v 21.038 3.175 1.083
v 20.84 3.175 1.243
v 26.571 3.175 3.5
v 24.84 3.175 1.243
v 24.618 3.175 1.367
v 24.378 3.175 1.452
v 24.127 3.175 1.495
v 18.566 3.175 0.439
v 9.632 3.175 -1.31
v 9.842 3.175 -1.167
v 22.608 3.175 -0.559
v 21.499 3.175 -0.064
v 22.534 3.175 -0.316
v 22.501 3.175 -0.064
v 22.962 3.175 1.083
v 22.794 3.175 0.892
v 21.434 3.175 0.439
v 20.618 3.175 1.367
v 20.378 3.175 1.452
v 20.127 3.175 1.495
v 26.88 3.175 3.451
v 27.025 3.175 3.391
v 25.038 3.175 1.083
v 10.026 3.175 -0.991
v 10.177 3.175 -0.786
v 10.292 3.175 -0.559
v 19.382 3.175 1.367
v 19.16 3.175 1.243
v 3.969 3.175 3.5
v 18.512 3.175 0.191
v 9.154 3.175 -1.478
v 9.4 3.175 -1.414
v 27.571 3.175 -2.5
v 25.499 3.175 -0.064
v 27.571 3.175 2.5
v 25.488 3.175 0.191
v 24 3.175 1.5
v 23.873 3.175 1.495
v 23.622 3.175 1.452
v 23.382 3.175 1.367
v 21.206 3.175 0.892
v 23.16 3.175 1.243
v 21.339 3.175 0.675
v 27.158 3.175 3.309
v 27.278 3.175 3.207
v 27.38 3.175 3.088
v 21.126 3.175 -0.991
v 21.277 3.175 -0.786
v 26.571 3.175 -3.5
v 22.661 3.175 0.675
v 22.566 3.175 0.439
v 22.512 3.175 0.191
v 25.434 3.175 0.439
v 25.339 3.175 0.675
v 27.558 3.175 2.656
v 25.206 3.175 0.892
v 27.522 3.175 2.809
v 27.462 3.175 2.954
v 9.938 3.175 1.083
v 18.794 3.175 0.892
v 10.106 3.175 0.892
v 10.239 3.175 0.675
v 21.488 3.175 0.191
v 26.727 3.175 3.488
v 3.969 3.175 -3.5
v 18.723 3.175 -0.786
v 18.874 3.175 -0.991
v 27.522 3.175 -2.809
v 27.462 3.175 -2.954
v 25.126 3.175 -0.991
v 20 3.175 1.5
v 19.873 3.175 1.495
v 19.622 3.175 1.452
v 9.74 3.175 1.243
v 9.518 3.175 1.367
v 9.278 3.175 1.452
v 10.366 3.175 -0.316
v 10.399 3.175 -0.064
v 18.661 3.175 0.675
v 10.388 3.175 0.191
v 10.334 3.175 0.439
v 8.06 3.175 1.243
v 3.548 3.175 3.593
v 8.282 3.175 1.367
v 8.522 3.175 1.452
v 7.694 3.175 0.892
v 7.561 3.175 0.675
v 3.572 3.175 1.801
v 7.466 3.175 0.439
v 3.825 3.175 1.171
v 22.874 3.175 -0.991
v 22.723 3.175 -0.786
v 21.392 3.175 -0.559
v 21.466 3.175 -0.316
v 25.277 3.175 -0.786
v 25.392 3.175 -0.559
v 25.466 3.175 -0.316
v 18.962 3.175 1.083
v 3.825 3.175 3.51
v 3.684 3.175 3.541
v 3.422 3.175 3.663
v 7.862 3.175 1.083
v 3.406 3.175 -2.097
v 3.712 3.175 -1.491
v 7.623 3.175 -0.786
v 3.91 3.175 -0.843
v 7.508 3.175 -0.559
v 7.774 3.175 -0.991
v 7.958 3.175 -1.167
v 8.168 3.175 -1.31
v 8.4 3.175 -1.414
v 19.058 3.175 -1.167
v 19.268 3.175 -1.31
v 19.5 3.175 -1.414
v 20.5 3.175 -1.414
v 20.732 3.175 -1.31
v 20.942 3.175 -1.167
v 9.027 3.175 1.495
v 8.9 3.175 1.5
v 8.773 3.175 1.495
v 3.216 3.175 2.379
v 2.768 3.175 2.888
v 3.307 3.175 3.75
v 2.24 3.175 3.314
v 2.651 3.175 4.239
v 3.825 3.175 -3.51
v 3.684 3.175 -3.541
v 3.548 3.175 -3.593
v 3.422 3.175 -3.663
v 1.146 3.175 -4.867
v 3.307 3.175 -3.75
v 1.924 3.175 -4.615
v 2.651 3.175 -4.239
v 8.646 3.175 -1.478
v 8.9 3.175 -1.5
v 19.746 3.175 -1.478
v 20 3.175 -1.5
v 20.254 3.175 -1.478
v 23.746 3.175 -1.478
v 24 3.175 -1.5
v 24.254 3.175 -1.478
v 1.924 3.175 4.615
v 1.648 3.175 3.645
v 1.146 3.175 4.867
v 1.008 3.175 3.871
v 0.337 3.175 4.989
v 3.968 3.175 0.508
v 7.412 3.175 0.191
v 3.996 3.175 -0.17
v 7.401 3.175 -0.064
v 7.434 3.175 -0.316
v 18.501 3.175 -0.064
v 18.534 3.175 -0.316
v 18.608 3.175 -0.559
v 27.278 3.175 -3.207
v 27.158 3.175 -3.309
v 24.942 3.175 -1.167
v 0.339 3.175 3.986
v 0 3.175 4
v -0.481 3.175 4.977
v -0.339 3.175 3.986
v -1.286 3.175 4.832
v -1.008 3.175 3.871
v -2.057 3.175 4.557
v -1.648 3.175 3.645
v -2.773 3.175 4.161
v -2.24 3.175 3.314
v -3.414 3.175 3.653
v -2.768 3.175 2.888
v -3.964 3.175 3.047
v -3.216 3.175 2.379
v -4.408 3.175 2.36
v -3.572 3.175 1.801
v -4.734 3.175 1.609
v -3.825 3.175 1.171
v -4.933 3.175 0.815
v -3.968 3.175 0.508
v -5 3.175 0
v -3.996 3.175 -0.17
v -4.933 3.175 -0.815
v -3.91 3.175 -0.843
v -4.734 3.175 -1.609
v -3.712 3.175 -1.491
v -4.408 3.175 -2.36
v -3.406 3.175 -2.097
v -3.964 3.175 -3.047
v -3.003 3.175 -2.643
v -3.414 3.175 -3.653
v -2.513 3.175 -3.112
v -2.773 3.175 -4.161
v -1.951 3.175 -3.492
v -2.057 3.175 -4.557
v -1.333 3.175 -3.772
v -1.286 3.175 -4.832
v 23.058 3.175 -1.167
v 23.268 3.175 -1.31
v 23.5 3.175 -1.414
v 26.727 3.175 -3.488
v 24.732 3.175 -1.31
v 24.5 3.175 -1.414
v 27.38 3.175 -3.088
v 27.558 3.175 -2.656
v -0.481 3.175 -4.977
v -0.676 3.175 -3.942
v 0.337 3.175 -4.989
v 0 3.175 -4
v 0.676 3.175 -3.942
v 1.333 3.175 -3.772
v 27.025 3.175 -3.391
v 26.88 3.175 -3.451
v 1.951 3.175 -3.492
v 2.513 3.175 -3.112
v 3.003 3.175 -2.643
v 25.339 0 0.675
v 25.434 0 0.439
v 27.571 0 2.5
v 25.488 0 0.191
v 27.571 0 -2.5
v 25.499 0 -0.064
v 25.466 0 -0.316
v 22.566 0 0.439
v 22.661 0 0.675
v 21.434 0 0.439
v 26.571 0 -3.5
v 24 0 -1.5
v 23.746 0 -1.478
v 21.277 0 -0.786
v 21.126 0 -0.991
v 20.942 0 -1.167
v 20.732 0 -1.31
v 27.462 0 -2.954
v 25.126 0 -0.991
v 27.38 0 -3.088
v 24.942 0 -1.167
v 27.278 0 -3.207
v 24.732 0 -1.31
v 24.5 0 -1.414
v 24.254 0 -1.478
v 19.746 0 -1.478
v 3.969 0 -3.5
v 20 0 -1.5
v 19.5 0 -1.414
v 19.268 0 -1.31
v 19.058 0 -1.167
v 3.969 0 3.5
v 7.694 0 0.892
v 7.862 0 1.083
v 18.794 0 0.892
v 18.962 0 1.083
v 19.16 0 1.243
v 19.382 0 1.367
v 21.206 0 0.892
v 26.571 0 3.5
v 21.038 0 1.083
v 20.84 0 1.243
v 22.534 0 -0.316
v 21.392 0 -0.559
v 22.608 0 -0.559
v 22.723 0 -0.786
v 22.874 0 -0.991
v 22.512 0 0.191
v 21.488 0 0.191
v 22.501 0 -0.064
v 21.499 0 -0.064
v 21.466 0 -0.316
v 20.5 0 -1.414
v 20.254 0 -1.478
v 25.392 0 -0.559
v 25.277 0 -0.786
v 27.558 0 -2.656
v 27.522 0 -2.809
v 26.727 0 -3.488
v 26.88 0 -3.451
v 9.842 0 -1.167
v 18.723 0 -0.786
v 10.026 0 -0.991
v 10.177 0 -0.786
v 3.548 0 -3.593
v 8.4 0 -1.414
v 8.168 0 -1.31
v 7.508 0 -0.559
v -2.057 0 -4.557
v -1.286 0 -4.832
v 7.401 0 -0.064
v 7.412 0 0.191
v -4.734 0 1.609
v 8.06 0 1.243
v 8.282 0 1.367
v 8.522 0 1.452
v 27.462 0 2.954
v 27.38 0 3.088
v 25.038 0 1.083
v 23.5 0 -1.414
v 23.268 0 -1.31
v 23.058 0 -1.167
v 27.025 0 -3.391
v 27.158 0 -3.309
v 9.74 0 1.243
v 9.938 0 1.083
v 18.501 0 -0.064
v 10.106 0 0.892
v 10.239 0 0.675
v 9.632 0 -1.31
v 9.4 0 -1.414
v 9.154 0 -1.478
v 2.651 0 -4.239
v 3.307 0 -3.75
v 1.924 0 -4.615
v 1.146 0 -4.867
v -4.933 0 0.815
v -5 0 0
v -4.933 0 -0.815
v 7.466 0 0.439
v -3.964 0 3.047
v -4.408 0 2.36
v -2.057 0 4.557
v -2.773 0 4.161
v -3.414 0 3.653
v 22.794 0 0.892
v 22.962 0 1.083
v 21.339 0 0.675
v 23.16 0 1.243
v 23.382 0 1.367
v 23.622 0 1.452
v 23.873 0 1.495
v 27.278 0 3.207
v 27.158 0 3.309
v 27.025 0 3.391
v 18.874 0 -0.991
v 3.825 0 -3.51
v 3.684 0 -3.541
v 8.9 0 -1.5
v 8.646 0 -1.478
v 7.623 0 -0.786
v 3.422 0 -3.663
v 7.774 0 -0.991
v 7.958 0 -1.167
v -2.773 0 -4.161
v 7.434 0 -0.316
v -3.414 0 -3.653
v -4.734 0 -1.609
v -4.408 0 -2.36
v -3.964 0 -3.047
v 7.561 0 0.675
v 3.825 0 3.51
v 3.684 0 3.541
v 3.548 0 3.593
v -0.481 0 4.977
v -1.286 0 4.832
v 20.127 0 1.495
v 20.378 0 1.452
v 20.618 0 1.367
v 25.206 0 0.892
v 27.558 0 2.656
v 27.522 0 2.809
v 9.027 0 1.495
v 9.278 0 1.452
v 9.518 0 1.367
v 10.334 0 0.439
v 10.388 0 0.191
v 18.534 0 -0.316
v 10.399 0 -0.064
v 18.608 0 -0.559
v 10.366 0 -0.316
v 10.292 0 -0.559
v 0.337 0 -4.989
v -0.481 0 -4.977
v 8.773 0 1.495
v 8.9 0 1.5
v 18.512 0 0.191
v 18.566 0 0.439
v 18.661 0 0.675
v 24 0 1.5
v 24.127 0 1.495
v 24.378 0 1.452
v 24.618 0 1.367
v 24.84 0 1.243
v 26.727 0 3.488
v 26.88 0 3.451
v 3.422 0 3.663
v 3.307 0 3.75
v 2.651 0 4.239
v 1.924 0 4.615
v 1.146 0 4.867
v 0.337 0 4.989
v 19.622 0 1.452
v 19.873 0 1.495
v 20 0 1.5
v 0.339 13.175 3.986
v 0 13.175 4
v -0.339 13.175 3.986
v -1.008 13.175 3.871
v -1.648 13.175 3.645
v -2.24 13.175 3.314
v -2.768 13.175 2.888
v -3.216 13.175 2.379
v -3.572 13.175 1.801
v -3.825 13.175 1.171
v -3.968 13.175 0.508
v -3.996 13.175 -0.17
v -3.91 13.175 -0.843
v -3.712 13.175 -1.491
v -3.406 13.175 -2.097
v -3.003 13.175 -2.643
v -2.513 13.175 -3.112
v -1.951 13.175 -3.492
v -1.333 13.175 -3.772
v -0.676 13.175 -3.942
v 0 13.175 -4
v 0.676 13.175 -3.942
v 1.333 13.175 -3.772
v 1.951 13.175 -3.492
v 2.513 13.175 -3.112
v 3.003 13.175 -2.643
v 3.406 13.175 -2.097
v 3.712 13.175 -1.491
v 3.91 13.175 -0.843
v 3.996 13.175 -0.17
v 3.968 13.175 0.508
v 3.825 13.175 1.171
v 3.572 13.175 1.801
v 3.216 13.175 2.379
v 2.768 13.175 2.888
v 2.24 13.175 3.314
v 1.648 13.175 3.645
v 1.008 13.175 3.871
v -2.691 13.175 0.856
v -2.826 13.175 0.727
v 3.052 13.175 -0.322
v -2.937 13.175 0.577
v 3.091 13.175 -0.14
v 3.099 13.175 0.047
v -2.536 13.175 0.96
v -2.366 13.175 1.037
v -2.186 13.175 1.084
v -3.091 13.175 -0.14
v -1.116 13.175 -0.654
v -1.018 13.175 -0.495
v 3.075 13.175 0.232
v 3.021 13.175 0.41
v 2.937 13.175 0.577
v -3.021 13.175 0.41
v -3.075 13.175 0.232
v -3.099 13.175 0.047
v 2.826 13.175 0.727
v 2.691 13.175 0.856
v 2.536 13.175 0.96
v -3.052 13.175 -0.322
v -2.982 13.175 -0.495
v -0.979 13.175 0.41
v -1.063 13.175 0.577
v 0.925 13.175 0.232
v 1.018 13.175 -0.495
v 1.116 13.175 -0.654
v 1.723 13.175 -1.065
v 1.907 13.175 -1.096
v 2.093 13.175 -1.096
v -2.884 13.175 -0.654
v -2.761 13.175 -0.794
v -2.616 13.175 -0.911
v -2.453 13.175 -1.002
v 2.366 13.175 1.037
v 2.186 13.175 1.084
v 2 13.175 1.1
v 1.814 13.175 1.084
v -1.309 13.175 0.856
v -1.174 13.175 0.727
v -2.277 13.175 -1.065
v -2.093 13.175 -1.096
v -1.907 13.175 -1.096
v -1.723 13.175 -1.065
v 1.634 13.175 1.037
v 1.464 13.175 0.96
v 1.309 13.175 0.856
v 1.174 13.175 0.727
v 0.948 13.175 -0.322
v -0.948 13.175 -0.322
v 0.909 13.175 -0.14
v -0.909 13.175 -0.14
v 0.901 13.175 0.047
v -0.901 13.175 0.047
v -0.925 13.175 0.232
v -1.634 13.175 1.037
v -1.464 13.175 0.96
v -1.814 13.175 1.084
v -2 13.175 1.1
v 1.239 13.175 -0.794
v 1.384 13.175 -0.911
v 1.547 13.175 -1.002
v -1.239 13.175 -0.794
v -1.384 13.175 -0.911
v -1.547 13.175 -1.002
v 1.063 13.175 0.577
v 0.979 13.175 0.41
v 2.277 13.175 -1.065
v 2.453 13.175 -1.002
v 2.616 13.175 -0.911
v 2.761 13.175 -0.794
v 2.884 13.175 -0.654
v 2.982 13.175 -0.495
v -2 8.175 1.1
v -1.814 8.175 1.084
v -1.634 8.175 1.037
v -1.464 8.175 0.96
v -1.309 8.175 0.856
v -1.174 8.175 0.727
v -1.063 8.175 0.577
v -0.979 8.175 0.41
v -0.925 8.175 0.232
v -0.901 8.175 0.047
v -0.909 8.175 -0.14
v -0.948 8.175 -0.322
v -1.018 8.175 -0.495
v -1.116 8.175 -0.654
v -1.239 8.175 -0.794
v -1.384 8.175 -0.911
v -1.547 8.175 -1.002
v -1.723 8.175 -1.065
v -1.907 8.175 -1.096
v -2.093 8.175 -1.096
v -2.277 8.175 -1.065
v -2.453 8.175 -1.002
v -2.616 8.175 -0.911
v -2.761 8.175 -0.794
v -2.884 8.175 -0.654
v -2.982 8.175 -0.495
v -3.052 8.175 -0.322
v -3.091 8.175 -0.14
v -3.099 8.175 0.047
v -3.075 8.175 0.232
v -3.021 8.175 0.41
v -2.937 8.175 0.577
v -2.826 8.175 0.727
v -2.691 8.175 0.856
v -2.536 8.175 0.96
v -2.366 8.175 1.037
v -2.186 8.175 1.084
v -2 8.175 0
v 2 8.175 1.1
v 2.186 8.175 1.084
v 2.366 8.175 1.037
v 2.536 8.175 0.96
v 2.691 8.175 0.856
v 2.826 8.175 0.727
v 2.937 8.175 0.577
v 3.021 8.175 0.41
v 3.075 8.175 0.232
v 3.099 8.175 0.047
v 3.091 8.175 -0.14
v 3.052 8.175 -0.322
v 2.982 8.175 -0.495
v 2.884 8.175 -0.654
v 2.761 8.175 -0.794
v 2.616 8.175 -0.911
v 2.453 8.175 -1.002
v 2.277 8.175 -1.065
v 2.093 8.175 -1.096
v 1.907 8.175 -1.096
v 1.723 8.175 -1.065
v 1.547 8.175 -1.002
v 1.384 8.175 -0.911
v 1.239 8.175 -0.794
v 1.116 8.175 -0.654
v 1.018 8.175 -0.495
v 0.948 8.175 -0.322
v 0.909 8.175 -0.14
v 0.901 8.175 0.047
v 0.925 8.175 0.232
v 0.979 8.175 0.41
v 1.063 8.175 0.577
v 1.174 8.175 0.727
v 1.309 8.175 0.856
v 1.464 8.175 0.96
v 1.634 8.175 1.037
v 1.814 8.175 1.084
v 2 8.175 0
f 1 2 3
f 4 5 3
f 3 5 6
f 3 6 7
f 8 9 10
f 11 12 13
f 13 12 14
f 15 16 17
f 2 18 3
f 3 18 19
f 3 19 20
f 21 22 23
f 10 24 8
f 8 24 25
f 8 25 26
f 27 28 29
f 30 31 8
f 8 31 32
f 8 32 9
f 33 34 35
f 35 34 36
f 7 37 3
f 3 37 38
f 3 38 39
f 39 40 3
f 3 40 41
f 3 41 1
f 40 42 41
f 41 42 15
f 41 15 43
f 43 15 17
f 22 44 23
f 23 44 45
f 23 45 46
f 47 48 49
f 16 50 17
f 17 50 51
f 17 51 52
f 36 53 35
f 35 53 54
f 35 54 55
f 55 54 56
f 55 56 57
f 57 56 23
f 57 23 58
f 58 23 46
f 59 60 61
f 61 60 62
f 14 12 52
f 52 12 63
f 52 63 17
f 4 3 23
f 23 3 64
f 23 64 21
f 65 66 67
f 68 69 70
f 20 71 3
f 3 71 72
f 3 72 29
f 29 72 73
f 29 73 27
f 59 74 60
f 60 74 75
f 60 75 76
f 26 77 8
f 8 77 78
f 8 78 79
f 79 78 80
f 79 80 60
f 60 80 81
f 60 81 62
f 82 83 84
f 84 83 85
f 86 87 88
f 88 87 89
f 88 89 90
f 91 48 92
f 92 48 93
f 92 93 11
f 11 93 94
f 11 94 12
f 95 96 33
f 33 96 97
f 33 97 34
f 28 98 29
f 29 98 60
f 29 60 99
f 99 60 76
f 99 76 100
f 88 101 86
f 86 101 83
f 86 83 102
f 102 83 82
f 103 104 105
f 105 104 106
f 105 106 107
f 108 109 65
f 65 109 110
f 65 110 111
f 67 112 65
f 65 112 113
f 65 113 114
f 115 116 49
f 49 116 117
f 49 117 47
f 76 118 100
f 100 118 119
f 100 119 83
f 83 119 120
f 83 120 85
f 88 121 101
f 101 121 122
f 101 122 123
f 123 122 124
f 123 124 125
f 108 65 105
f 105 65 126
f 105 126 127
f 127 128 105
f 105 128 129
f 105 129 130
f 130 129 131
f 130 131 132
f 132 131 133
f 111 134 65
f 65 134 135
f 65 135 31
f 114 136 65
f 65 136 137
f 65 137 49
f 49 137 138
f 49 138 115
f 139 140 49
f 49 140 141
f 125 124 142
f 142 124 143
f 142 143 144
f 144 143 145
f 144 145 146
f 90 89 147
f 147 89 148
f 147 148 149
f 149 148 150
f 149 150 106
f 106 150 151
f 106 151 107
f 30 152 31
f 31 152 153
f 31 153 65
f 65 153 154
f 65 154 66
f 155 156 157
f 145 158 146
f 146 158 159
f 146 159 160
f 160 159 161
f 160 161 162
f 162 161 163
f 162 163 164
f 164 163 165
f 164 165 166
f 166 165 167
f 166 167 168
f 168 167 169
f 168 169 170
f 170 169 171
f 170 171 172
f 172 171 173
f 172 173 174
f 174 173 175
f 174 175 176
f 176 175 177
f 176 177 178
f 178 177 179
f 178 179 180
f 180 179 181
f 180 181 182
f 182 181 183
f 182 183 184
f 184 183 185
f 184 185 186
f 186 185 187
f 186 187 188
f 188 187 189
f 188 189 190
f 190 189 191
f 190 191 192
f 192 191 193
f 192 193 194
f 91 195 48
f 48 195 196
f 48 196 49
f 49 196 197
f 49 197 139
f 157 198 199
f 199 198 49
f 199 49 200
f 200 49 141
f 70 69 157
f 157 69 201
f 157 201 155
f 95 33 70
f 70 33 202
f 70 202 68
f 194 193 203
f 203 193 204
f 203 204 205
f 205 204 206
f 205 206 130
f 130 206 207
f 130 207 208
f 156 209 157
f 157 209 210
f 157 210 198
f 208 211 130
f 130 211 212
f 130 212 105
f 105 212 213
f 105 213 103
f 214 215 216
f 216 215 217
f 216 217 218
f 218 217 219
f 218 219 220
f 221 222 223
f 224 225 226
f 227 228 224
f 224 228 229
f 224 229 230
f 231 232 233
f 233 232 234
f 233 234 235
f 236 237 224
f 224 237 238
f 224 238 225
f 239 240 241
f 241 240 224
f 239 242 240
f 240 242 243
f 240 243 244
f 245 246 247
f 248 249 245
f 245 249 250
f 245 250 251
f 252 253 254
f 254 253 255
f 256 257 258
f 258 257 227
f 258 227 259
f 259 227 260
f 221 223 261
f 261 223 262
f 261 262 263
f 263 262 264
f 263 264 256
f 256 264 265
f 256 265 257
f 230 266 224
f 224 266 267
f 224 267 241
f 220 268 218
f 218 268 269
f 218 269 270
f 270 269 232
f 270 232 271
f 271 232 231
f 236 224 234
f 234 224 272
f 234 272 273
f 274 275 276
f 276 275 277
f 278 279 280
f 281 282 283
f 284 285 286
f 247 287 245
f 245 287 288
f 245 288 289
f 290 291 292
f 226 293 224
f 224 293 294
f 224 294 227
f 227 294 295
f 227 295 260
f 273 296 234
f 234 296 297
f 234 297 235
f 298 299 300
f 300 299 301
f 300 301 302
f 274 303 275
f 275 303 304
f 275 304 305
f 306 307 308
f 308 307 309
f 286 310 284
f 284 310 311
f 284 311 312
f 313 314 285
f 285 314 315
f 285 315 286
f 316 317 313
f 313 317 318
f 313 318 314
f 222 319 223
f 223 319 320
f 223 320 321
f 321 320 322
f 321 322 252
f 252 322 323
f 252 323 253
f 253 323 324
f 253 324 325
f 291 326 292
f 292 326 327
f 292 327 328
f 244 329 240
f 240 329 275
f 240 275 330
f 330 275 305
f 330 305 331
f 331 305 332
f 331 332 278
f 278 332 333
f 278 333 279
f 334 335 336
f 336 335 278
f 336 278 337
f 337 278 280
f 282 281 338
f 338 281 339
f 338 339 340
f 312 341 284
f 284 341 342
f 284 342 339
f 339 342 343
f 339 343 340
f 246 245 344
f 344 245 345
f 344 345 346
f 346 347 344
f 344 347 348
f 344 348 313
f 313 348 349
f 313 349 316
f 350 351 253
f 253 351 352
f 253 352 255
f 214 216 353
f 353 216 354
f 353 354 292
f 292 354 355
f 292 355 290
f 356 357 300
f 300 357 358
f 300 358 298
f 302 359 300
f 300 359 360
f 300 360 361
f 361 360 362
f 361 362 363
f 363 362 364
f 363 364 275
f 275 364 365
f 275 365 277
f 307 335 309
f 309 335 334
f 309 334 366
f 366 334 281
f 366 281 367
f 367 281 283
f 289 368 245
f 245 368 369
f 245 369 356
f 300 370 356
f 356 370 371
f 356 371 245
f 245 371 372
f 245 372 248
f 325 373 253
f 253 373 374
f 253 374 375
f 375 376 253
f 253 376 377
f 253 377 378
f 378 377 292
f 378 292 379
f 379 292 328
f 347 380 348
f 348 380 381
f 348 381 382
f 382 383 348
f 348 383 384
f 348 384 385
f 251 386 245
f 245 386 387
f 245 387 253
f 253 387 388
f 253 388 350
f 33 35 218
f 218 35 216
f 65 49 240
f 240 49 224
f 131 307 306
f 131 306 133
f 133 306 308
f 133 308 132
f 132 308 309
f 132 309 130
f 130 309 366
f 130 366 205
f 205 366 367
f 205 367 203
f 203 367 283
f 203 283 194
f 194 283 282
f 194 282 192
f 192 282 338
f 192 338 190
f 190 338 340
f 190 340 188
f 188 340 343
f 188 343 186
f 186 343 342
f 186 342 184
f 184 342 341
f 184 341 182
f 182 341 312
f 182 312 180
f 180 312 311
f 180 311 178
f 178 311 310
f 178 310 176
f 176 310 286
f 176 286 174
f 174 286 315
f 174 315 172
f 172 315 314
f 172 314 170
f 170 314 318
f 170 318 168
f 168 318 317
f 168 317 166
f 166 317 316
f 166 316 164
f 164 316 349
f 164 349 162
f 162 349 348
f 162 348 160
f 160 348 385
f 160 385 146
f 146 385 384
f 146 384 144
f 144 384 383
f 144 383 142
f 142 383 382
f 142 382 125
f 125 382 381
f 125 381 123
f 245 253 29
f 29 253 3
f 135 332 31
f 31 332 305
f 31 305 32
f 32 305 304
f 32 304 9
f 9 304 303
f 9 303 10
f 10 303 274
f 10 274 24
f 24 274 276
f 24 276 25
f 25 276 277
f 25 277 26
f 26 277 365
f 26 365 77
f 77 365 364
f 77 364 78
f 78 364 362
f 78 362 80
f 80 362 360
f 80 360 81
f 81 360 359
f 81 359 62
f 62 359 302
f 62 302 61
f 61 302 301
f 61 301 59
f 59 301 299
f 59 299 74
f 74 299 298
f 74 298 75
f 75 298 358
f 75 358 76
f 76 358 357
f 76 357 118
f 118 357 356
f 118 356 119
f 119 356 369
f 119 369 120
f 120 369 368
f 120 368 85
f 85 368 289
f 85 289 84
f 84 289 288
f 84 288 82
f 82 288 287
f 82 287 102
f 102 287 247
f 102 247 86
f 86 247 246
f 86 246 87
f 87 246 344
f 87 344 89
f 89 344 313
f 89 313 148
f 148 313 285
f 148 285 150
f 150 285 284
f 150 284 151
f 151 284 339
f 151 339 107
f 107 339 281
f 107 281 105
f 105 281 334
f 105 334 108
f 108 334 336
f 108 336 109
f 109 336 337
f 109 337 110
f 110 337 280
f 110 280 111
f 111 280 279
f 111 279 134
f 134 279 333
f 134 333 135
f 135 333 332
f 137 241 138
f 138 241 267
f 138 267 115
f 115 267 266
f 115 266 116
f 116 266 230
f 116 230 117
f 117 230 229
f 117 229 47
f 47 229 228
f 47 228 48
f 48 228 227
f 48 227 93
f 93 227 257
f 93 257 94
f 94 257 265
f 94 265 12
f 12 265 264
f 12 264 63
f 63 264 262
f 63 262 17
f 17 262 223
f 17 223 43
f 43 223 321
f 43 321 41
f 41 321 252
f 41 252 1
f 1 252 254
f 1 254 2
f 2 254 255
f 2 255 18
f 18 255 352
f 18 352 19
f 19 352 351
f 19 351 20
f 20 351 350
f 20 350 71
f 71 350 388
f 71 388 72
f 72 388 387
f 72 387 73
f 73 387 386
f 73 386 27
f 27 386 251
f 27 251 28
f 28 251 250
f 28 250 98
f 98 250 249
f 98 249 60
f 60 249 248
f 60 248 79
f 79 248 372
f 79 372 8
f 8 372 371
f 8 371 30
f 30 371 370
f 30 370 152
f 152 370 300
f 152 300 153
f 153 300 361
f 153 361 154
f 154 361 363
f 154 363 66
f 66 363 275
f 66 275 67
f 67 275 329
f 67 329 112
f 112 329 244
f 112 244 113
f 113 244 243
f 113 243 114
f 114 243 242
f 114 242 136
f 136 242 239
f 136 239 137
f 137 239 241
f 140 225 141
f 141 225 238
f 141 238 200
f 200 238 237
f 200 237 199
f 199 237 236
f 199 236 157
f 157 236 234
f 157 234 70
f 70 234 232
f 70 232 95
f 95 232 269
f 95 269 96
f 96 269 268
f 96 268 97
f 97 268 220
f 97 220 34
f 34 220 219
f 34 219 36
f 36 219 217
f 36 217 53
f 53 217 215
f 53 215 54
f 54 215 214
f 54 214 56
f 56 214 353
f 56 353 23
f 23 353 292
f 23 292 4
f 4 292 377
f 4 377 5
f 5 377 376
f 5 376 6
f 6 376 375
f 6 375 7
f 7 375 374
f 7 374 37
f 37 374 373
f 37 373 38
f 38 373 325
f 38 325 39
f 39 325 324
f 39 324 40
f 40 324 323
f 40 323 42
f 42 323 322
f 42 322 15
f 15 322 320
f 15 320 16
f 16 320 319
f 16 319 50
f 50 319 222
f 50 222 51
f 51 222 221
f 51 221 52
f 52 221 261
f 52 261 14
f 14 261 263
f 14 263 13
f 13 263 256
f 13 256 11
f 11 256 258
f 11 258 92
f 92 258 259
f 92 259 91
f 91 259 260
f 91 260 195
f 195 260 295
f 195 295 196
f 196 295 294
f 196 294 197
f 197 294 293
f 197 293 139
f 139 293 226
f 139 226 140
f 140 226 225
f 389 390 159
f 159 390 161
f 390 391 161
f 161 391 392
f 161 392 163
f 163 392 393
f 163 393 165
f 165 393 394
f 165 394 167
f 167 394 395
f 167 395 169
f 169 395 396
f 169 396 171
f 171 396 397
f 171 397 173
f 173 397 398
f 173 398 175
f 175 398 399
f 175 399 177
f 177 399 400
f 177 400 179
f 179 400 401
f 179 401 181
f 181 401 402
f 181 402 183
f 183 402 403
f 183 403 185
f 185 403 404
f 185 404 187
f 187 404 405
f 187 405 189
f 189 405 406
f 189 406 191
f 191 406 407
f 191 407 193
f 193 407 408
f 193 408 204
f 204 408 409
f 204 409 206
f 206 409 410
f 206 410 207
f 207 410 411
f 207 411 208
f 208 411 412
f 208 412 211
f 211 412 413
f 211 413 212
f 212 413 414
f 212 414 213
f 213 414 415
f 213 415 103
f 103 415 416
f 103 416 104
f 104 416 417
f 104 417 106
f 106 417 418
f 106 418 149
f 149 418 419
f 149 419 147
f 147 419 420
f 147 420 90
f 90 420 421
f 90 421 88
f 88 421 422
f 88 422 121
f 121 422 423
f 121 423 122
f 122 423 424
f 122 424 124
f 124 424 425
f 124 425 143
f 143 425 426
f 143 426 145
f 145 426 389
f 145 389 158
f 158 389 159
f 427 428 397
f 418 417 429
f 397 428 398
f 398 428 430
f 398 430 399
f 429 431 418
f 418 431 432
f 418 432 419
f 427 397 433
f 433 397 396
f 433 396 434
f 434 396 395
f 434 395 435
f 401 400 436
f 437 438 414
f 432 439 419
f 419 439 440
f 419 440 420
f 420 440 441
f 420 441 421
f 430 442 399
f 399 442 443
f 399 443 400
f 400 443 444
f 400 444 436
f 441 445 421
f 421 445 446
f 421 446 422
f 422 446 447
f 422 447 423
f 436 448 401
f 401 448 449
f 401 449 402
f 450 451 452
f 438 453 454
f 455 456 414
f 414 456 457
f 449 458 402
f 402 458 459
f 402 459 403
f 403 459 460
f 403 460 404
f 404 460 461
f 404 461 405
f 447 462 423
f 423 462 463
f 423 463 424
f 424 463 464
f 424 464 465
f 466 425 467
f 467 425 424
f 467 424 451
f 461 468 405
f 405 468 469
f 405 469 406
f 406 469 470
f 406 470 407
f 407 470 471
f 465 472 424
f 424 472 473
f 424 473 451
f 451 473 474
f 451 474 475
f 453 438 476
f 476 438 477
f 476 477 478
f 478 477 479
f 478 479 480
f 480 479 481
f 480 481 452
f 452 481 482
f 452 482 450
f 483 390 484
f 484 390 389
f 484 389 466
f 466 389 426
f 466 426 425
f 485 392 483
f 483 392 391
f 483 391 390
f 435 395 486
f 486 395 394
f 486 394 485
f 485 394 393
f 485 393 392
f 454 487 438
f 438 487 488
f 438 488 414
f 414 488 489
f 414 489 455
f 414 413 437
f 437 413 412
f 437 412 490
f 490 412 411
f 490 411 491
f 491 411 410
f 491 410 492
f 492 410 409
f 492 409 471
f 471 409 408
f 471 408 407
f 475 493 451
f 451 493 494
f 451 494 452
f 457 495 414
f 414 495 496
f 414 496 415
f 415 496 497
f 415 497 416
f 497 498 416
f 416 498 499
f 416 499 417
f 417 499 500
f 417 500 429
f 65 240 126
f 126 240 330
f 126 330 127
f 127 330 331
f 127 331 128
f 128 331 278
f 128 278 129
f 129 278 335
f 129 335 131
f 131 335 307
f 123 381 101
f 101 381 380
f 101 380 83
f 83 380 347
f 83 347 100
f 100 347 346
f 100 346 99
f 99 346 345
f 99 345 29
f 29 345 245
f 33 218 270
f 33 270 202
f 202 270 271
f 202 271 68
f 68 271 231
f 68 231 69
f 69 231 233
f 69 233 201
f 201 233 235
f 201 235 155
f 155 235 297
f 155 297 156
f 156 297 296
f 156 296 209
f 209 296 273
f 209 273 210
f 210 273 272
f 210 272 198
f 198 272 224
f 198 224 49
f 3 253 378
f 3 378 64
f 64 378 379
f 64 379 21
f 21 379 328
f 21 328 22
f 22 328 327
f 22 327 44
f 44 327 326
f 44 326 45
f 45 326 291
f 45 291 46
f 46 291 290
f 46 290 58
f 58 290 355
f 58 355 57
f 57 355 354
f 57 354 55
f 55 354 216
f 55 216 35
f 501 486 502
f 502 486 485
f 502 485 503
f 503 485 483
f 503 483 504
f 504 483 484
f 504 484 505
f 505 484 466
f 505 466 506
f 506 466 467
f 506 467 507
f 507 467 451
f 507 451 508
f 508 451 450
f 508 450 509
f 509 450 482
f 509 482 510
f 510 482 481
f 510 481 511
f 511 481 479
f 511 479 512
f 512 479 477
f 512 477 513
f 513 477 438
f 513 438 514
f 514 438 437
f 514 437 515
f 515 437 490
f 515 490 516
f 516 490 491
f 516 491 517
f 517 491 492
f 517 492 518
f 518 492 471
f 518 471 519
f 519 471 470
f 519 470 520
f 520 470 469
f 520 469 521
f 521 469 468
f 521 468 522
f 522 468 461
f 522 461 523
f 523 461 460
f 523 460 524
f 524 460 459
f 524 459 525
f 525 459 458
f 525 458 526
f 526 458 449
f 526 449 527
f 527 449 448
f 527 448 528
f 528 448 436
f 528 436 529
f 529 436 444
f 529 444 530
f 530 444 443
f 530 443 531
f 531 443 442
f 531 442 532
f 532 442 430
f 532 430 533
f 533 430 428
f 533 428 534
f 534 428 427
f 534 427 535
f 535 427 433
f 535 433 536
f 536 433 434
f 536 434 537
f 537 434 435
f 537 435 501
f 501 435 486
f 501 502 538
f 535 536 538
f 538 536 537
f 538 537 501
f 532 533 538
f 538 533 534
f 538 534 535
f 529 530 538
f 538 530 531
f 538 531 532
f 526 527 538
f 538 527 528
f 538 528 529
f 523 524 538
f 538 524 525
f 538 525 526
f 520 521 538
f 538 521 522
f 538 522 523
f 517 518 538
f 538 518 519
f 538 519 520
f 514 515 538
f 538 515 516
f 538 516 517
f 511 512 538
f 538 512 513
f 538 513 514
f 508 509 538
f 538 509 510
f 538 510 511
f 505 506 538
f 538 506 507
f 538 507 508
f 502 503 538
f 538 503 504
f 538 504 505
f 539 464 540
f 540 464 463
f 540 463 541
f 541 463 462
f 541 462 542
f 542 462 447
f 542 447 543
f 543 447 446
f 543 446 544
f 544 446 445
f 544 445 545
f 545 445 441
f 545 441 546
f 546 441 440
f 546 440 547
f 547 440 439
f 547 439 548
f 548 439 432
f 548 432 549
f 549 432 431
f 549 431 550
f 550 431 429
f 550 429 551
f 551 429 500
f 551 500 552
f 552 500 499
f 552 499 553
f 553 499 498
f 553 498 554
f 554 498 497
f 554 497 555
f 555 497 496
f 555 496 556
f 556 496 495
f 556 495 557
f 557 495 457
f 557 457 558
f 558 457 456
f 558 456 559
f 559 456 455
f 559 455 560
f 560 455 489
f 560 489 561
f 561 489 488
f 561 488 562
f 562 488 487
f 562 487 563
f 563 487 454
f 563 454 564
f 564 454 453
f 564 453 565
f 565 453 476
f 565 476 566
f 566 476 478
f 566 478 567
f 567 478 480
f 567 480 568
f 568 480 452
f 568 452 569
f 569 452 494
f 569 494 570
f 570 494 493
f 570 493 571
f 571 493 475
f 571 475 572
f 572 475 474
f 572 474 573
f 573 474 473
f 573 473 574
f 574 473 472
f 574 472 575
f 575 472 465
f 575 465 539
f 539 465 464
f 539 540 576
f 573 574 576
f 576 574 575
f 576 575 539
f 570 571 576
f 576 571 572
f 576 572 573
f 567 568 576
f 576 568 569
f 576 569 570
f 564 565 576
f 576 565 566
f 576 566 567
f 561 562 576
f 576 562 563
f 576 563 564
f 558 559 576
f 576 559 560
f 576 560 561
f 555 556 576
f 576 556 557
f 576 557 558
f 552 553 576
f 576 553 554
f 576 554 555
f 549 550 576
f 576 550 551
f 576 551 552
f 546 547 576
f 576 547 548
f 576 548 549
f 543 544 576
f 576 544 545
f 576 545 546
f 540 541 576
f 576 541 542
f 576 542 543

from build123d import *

# Parameters (mm, degrees)
SKETCH1_R           = 1.5
BOSS_EXTRUDE1_DEPTH = 3.175
SKETCH2_R           = 4
BOSS_EXTRUDE2_DEPTH = 10
FILLET1_R           = 1
SKETCH3_R           = 1.1
CUT_EXTRUDE1_DEPTH  = 5


with BuildPart() as part:
    # Sketch1 → Boss-Extrude1 (new body)
    with BuildSketch(Plane(origin=(0, 0, 0), x_dir=(1, 0, 0), z_dir=(0, 1, 0))):
        with BuildLine():
            Line((3.570714214, 3.5), (27.570714214, 3.5))
            Line((27.570714214, 3.5), (27.570714214, -3.5))
            Line((27.570714214, -3.5), (3.570714214, -3.5))
            ThreePointArc((3.570714214, -3.5), (-5, 0), (3.570714214, 3.5))
        make_face()
        with Locations(Location((8.9, 0, 0), (0, 0, 270))):
            Circle(SKETCH1_R, mode=Mode.SUBTRACT)
        with Locations(Location((20, 0, 0), (0, 0, 270))):
            Circle(SKETCH1_R, mode=Mode.SUBTRACT)
        with Locations(Location((24, 0, 0), (0, 0, 270))):
            Circle(SKETCH1_R, mode=Mode.SUBTRACT)
    extrude(amount=BOSS_EXTRUDE1_DEPTH)

    # Sketch2 → Boss-Extrude2 (add)
    with BuildSketch(Plane(origin=(0, 3.175, 0), x_dir=(1, 0, 0), z_dir=(0, 1, 0))):
        with Locations(Location((0, 0, 0), (0, 0, 270))):
            Circle(SKETCH2_R)
    extrude(amount=BOSS_EXTRUDE2_DEPTH)

    # Fillet1
    fillet1_edges = [part.edges().sort_by_distance(p)[0] for p in [
        (27.570714214, 1.5875, 3.5),
        (3.570714214, 1.5875, 3.5),
        (3.570714214, 1.5875, -3.5),
        (27.570714214, 1.5875, -3.5),
    ]]
    fillet(fillet1_edges, radius=FILLET1_R)

    # Sketch3 → Cut-Extrude1 (cut)
    with BuildSketch(Plane(origin=(0, 13.175, 0), x_dir=(1, 0, 0), z_dir=(0, 1, 0))):
        with Locations(Location((2, 0, 0), (0, 0, 270))):
            Circle(SKETCH3_R)
        with Locations(Location((-2, 0, 0), (0, 0, 270))):
            Circle(SKETCH3_R)
    extrude(amount=-CUT_EXTRUDE1_DEPTH, mode=Mode.SUBTRACT)


solid = part.part
